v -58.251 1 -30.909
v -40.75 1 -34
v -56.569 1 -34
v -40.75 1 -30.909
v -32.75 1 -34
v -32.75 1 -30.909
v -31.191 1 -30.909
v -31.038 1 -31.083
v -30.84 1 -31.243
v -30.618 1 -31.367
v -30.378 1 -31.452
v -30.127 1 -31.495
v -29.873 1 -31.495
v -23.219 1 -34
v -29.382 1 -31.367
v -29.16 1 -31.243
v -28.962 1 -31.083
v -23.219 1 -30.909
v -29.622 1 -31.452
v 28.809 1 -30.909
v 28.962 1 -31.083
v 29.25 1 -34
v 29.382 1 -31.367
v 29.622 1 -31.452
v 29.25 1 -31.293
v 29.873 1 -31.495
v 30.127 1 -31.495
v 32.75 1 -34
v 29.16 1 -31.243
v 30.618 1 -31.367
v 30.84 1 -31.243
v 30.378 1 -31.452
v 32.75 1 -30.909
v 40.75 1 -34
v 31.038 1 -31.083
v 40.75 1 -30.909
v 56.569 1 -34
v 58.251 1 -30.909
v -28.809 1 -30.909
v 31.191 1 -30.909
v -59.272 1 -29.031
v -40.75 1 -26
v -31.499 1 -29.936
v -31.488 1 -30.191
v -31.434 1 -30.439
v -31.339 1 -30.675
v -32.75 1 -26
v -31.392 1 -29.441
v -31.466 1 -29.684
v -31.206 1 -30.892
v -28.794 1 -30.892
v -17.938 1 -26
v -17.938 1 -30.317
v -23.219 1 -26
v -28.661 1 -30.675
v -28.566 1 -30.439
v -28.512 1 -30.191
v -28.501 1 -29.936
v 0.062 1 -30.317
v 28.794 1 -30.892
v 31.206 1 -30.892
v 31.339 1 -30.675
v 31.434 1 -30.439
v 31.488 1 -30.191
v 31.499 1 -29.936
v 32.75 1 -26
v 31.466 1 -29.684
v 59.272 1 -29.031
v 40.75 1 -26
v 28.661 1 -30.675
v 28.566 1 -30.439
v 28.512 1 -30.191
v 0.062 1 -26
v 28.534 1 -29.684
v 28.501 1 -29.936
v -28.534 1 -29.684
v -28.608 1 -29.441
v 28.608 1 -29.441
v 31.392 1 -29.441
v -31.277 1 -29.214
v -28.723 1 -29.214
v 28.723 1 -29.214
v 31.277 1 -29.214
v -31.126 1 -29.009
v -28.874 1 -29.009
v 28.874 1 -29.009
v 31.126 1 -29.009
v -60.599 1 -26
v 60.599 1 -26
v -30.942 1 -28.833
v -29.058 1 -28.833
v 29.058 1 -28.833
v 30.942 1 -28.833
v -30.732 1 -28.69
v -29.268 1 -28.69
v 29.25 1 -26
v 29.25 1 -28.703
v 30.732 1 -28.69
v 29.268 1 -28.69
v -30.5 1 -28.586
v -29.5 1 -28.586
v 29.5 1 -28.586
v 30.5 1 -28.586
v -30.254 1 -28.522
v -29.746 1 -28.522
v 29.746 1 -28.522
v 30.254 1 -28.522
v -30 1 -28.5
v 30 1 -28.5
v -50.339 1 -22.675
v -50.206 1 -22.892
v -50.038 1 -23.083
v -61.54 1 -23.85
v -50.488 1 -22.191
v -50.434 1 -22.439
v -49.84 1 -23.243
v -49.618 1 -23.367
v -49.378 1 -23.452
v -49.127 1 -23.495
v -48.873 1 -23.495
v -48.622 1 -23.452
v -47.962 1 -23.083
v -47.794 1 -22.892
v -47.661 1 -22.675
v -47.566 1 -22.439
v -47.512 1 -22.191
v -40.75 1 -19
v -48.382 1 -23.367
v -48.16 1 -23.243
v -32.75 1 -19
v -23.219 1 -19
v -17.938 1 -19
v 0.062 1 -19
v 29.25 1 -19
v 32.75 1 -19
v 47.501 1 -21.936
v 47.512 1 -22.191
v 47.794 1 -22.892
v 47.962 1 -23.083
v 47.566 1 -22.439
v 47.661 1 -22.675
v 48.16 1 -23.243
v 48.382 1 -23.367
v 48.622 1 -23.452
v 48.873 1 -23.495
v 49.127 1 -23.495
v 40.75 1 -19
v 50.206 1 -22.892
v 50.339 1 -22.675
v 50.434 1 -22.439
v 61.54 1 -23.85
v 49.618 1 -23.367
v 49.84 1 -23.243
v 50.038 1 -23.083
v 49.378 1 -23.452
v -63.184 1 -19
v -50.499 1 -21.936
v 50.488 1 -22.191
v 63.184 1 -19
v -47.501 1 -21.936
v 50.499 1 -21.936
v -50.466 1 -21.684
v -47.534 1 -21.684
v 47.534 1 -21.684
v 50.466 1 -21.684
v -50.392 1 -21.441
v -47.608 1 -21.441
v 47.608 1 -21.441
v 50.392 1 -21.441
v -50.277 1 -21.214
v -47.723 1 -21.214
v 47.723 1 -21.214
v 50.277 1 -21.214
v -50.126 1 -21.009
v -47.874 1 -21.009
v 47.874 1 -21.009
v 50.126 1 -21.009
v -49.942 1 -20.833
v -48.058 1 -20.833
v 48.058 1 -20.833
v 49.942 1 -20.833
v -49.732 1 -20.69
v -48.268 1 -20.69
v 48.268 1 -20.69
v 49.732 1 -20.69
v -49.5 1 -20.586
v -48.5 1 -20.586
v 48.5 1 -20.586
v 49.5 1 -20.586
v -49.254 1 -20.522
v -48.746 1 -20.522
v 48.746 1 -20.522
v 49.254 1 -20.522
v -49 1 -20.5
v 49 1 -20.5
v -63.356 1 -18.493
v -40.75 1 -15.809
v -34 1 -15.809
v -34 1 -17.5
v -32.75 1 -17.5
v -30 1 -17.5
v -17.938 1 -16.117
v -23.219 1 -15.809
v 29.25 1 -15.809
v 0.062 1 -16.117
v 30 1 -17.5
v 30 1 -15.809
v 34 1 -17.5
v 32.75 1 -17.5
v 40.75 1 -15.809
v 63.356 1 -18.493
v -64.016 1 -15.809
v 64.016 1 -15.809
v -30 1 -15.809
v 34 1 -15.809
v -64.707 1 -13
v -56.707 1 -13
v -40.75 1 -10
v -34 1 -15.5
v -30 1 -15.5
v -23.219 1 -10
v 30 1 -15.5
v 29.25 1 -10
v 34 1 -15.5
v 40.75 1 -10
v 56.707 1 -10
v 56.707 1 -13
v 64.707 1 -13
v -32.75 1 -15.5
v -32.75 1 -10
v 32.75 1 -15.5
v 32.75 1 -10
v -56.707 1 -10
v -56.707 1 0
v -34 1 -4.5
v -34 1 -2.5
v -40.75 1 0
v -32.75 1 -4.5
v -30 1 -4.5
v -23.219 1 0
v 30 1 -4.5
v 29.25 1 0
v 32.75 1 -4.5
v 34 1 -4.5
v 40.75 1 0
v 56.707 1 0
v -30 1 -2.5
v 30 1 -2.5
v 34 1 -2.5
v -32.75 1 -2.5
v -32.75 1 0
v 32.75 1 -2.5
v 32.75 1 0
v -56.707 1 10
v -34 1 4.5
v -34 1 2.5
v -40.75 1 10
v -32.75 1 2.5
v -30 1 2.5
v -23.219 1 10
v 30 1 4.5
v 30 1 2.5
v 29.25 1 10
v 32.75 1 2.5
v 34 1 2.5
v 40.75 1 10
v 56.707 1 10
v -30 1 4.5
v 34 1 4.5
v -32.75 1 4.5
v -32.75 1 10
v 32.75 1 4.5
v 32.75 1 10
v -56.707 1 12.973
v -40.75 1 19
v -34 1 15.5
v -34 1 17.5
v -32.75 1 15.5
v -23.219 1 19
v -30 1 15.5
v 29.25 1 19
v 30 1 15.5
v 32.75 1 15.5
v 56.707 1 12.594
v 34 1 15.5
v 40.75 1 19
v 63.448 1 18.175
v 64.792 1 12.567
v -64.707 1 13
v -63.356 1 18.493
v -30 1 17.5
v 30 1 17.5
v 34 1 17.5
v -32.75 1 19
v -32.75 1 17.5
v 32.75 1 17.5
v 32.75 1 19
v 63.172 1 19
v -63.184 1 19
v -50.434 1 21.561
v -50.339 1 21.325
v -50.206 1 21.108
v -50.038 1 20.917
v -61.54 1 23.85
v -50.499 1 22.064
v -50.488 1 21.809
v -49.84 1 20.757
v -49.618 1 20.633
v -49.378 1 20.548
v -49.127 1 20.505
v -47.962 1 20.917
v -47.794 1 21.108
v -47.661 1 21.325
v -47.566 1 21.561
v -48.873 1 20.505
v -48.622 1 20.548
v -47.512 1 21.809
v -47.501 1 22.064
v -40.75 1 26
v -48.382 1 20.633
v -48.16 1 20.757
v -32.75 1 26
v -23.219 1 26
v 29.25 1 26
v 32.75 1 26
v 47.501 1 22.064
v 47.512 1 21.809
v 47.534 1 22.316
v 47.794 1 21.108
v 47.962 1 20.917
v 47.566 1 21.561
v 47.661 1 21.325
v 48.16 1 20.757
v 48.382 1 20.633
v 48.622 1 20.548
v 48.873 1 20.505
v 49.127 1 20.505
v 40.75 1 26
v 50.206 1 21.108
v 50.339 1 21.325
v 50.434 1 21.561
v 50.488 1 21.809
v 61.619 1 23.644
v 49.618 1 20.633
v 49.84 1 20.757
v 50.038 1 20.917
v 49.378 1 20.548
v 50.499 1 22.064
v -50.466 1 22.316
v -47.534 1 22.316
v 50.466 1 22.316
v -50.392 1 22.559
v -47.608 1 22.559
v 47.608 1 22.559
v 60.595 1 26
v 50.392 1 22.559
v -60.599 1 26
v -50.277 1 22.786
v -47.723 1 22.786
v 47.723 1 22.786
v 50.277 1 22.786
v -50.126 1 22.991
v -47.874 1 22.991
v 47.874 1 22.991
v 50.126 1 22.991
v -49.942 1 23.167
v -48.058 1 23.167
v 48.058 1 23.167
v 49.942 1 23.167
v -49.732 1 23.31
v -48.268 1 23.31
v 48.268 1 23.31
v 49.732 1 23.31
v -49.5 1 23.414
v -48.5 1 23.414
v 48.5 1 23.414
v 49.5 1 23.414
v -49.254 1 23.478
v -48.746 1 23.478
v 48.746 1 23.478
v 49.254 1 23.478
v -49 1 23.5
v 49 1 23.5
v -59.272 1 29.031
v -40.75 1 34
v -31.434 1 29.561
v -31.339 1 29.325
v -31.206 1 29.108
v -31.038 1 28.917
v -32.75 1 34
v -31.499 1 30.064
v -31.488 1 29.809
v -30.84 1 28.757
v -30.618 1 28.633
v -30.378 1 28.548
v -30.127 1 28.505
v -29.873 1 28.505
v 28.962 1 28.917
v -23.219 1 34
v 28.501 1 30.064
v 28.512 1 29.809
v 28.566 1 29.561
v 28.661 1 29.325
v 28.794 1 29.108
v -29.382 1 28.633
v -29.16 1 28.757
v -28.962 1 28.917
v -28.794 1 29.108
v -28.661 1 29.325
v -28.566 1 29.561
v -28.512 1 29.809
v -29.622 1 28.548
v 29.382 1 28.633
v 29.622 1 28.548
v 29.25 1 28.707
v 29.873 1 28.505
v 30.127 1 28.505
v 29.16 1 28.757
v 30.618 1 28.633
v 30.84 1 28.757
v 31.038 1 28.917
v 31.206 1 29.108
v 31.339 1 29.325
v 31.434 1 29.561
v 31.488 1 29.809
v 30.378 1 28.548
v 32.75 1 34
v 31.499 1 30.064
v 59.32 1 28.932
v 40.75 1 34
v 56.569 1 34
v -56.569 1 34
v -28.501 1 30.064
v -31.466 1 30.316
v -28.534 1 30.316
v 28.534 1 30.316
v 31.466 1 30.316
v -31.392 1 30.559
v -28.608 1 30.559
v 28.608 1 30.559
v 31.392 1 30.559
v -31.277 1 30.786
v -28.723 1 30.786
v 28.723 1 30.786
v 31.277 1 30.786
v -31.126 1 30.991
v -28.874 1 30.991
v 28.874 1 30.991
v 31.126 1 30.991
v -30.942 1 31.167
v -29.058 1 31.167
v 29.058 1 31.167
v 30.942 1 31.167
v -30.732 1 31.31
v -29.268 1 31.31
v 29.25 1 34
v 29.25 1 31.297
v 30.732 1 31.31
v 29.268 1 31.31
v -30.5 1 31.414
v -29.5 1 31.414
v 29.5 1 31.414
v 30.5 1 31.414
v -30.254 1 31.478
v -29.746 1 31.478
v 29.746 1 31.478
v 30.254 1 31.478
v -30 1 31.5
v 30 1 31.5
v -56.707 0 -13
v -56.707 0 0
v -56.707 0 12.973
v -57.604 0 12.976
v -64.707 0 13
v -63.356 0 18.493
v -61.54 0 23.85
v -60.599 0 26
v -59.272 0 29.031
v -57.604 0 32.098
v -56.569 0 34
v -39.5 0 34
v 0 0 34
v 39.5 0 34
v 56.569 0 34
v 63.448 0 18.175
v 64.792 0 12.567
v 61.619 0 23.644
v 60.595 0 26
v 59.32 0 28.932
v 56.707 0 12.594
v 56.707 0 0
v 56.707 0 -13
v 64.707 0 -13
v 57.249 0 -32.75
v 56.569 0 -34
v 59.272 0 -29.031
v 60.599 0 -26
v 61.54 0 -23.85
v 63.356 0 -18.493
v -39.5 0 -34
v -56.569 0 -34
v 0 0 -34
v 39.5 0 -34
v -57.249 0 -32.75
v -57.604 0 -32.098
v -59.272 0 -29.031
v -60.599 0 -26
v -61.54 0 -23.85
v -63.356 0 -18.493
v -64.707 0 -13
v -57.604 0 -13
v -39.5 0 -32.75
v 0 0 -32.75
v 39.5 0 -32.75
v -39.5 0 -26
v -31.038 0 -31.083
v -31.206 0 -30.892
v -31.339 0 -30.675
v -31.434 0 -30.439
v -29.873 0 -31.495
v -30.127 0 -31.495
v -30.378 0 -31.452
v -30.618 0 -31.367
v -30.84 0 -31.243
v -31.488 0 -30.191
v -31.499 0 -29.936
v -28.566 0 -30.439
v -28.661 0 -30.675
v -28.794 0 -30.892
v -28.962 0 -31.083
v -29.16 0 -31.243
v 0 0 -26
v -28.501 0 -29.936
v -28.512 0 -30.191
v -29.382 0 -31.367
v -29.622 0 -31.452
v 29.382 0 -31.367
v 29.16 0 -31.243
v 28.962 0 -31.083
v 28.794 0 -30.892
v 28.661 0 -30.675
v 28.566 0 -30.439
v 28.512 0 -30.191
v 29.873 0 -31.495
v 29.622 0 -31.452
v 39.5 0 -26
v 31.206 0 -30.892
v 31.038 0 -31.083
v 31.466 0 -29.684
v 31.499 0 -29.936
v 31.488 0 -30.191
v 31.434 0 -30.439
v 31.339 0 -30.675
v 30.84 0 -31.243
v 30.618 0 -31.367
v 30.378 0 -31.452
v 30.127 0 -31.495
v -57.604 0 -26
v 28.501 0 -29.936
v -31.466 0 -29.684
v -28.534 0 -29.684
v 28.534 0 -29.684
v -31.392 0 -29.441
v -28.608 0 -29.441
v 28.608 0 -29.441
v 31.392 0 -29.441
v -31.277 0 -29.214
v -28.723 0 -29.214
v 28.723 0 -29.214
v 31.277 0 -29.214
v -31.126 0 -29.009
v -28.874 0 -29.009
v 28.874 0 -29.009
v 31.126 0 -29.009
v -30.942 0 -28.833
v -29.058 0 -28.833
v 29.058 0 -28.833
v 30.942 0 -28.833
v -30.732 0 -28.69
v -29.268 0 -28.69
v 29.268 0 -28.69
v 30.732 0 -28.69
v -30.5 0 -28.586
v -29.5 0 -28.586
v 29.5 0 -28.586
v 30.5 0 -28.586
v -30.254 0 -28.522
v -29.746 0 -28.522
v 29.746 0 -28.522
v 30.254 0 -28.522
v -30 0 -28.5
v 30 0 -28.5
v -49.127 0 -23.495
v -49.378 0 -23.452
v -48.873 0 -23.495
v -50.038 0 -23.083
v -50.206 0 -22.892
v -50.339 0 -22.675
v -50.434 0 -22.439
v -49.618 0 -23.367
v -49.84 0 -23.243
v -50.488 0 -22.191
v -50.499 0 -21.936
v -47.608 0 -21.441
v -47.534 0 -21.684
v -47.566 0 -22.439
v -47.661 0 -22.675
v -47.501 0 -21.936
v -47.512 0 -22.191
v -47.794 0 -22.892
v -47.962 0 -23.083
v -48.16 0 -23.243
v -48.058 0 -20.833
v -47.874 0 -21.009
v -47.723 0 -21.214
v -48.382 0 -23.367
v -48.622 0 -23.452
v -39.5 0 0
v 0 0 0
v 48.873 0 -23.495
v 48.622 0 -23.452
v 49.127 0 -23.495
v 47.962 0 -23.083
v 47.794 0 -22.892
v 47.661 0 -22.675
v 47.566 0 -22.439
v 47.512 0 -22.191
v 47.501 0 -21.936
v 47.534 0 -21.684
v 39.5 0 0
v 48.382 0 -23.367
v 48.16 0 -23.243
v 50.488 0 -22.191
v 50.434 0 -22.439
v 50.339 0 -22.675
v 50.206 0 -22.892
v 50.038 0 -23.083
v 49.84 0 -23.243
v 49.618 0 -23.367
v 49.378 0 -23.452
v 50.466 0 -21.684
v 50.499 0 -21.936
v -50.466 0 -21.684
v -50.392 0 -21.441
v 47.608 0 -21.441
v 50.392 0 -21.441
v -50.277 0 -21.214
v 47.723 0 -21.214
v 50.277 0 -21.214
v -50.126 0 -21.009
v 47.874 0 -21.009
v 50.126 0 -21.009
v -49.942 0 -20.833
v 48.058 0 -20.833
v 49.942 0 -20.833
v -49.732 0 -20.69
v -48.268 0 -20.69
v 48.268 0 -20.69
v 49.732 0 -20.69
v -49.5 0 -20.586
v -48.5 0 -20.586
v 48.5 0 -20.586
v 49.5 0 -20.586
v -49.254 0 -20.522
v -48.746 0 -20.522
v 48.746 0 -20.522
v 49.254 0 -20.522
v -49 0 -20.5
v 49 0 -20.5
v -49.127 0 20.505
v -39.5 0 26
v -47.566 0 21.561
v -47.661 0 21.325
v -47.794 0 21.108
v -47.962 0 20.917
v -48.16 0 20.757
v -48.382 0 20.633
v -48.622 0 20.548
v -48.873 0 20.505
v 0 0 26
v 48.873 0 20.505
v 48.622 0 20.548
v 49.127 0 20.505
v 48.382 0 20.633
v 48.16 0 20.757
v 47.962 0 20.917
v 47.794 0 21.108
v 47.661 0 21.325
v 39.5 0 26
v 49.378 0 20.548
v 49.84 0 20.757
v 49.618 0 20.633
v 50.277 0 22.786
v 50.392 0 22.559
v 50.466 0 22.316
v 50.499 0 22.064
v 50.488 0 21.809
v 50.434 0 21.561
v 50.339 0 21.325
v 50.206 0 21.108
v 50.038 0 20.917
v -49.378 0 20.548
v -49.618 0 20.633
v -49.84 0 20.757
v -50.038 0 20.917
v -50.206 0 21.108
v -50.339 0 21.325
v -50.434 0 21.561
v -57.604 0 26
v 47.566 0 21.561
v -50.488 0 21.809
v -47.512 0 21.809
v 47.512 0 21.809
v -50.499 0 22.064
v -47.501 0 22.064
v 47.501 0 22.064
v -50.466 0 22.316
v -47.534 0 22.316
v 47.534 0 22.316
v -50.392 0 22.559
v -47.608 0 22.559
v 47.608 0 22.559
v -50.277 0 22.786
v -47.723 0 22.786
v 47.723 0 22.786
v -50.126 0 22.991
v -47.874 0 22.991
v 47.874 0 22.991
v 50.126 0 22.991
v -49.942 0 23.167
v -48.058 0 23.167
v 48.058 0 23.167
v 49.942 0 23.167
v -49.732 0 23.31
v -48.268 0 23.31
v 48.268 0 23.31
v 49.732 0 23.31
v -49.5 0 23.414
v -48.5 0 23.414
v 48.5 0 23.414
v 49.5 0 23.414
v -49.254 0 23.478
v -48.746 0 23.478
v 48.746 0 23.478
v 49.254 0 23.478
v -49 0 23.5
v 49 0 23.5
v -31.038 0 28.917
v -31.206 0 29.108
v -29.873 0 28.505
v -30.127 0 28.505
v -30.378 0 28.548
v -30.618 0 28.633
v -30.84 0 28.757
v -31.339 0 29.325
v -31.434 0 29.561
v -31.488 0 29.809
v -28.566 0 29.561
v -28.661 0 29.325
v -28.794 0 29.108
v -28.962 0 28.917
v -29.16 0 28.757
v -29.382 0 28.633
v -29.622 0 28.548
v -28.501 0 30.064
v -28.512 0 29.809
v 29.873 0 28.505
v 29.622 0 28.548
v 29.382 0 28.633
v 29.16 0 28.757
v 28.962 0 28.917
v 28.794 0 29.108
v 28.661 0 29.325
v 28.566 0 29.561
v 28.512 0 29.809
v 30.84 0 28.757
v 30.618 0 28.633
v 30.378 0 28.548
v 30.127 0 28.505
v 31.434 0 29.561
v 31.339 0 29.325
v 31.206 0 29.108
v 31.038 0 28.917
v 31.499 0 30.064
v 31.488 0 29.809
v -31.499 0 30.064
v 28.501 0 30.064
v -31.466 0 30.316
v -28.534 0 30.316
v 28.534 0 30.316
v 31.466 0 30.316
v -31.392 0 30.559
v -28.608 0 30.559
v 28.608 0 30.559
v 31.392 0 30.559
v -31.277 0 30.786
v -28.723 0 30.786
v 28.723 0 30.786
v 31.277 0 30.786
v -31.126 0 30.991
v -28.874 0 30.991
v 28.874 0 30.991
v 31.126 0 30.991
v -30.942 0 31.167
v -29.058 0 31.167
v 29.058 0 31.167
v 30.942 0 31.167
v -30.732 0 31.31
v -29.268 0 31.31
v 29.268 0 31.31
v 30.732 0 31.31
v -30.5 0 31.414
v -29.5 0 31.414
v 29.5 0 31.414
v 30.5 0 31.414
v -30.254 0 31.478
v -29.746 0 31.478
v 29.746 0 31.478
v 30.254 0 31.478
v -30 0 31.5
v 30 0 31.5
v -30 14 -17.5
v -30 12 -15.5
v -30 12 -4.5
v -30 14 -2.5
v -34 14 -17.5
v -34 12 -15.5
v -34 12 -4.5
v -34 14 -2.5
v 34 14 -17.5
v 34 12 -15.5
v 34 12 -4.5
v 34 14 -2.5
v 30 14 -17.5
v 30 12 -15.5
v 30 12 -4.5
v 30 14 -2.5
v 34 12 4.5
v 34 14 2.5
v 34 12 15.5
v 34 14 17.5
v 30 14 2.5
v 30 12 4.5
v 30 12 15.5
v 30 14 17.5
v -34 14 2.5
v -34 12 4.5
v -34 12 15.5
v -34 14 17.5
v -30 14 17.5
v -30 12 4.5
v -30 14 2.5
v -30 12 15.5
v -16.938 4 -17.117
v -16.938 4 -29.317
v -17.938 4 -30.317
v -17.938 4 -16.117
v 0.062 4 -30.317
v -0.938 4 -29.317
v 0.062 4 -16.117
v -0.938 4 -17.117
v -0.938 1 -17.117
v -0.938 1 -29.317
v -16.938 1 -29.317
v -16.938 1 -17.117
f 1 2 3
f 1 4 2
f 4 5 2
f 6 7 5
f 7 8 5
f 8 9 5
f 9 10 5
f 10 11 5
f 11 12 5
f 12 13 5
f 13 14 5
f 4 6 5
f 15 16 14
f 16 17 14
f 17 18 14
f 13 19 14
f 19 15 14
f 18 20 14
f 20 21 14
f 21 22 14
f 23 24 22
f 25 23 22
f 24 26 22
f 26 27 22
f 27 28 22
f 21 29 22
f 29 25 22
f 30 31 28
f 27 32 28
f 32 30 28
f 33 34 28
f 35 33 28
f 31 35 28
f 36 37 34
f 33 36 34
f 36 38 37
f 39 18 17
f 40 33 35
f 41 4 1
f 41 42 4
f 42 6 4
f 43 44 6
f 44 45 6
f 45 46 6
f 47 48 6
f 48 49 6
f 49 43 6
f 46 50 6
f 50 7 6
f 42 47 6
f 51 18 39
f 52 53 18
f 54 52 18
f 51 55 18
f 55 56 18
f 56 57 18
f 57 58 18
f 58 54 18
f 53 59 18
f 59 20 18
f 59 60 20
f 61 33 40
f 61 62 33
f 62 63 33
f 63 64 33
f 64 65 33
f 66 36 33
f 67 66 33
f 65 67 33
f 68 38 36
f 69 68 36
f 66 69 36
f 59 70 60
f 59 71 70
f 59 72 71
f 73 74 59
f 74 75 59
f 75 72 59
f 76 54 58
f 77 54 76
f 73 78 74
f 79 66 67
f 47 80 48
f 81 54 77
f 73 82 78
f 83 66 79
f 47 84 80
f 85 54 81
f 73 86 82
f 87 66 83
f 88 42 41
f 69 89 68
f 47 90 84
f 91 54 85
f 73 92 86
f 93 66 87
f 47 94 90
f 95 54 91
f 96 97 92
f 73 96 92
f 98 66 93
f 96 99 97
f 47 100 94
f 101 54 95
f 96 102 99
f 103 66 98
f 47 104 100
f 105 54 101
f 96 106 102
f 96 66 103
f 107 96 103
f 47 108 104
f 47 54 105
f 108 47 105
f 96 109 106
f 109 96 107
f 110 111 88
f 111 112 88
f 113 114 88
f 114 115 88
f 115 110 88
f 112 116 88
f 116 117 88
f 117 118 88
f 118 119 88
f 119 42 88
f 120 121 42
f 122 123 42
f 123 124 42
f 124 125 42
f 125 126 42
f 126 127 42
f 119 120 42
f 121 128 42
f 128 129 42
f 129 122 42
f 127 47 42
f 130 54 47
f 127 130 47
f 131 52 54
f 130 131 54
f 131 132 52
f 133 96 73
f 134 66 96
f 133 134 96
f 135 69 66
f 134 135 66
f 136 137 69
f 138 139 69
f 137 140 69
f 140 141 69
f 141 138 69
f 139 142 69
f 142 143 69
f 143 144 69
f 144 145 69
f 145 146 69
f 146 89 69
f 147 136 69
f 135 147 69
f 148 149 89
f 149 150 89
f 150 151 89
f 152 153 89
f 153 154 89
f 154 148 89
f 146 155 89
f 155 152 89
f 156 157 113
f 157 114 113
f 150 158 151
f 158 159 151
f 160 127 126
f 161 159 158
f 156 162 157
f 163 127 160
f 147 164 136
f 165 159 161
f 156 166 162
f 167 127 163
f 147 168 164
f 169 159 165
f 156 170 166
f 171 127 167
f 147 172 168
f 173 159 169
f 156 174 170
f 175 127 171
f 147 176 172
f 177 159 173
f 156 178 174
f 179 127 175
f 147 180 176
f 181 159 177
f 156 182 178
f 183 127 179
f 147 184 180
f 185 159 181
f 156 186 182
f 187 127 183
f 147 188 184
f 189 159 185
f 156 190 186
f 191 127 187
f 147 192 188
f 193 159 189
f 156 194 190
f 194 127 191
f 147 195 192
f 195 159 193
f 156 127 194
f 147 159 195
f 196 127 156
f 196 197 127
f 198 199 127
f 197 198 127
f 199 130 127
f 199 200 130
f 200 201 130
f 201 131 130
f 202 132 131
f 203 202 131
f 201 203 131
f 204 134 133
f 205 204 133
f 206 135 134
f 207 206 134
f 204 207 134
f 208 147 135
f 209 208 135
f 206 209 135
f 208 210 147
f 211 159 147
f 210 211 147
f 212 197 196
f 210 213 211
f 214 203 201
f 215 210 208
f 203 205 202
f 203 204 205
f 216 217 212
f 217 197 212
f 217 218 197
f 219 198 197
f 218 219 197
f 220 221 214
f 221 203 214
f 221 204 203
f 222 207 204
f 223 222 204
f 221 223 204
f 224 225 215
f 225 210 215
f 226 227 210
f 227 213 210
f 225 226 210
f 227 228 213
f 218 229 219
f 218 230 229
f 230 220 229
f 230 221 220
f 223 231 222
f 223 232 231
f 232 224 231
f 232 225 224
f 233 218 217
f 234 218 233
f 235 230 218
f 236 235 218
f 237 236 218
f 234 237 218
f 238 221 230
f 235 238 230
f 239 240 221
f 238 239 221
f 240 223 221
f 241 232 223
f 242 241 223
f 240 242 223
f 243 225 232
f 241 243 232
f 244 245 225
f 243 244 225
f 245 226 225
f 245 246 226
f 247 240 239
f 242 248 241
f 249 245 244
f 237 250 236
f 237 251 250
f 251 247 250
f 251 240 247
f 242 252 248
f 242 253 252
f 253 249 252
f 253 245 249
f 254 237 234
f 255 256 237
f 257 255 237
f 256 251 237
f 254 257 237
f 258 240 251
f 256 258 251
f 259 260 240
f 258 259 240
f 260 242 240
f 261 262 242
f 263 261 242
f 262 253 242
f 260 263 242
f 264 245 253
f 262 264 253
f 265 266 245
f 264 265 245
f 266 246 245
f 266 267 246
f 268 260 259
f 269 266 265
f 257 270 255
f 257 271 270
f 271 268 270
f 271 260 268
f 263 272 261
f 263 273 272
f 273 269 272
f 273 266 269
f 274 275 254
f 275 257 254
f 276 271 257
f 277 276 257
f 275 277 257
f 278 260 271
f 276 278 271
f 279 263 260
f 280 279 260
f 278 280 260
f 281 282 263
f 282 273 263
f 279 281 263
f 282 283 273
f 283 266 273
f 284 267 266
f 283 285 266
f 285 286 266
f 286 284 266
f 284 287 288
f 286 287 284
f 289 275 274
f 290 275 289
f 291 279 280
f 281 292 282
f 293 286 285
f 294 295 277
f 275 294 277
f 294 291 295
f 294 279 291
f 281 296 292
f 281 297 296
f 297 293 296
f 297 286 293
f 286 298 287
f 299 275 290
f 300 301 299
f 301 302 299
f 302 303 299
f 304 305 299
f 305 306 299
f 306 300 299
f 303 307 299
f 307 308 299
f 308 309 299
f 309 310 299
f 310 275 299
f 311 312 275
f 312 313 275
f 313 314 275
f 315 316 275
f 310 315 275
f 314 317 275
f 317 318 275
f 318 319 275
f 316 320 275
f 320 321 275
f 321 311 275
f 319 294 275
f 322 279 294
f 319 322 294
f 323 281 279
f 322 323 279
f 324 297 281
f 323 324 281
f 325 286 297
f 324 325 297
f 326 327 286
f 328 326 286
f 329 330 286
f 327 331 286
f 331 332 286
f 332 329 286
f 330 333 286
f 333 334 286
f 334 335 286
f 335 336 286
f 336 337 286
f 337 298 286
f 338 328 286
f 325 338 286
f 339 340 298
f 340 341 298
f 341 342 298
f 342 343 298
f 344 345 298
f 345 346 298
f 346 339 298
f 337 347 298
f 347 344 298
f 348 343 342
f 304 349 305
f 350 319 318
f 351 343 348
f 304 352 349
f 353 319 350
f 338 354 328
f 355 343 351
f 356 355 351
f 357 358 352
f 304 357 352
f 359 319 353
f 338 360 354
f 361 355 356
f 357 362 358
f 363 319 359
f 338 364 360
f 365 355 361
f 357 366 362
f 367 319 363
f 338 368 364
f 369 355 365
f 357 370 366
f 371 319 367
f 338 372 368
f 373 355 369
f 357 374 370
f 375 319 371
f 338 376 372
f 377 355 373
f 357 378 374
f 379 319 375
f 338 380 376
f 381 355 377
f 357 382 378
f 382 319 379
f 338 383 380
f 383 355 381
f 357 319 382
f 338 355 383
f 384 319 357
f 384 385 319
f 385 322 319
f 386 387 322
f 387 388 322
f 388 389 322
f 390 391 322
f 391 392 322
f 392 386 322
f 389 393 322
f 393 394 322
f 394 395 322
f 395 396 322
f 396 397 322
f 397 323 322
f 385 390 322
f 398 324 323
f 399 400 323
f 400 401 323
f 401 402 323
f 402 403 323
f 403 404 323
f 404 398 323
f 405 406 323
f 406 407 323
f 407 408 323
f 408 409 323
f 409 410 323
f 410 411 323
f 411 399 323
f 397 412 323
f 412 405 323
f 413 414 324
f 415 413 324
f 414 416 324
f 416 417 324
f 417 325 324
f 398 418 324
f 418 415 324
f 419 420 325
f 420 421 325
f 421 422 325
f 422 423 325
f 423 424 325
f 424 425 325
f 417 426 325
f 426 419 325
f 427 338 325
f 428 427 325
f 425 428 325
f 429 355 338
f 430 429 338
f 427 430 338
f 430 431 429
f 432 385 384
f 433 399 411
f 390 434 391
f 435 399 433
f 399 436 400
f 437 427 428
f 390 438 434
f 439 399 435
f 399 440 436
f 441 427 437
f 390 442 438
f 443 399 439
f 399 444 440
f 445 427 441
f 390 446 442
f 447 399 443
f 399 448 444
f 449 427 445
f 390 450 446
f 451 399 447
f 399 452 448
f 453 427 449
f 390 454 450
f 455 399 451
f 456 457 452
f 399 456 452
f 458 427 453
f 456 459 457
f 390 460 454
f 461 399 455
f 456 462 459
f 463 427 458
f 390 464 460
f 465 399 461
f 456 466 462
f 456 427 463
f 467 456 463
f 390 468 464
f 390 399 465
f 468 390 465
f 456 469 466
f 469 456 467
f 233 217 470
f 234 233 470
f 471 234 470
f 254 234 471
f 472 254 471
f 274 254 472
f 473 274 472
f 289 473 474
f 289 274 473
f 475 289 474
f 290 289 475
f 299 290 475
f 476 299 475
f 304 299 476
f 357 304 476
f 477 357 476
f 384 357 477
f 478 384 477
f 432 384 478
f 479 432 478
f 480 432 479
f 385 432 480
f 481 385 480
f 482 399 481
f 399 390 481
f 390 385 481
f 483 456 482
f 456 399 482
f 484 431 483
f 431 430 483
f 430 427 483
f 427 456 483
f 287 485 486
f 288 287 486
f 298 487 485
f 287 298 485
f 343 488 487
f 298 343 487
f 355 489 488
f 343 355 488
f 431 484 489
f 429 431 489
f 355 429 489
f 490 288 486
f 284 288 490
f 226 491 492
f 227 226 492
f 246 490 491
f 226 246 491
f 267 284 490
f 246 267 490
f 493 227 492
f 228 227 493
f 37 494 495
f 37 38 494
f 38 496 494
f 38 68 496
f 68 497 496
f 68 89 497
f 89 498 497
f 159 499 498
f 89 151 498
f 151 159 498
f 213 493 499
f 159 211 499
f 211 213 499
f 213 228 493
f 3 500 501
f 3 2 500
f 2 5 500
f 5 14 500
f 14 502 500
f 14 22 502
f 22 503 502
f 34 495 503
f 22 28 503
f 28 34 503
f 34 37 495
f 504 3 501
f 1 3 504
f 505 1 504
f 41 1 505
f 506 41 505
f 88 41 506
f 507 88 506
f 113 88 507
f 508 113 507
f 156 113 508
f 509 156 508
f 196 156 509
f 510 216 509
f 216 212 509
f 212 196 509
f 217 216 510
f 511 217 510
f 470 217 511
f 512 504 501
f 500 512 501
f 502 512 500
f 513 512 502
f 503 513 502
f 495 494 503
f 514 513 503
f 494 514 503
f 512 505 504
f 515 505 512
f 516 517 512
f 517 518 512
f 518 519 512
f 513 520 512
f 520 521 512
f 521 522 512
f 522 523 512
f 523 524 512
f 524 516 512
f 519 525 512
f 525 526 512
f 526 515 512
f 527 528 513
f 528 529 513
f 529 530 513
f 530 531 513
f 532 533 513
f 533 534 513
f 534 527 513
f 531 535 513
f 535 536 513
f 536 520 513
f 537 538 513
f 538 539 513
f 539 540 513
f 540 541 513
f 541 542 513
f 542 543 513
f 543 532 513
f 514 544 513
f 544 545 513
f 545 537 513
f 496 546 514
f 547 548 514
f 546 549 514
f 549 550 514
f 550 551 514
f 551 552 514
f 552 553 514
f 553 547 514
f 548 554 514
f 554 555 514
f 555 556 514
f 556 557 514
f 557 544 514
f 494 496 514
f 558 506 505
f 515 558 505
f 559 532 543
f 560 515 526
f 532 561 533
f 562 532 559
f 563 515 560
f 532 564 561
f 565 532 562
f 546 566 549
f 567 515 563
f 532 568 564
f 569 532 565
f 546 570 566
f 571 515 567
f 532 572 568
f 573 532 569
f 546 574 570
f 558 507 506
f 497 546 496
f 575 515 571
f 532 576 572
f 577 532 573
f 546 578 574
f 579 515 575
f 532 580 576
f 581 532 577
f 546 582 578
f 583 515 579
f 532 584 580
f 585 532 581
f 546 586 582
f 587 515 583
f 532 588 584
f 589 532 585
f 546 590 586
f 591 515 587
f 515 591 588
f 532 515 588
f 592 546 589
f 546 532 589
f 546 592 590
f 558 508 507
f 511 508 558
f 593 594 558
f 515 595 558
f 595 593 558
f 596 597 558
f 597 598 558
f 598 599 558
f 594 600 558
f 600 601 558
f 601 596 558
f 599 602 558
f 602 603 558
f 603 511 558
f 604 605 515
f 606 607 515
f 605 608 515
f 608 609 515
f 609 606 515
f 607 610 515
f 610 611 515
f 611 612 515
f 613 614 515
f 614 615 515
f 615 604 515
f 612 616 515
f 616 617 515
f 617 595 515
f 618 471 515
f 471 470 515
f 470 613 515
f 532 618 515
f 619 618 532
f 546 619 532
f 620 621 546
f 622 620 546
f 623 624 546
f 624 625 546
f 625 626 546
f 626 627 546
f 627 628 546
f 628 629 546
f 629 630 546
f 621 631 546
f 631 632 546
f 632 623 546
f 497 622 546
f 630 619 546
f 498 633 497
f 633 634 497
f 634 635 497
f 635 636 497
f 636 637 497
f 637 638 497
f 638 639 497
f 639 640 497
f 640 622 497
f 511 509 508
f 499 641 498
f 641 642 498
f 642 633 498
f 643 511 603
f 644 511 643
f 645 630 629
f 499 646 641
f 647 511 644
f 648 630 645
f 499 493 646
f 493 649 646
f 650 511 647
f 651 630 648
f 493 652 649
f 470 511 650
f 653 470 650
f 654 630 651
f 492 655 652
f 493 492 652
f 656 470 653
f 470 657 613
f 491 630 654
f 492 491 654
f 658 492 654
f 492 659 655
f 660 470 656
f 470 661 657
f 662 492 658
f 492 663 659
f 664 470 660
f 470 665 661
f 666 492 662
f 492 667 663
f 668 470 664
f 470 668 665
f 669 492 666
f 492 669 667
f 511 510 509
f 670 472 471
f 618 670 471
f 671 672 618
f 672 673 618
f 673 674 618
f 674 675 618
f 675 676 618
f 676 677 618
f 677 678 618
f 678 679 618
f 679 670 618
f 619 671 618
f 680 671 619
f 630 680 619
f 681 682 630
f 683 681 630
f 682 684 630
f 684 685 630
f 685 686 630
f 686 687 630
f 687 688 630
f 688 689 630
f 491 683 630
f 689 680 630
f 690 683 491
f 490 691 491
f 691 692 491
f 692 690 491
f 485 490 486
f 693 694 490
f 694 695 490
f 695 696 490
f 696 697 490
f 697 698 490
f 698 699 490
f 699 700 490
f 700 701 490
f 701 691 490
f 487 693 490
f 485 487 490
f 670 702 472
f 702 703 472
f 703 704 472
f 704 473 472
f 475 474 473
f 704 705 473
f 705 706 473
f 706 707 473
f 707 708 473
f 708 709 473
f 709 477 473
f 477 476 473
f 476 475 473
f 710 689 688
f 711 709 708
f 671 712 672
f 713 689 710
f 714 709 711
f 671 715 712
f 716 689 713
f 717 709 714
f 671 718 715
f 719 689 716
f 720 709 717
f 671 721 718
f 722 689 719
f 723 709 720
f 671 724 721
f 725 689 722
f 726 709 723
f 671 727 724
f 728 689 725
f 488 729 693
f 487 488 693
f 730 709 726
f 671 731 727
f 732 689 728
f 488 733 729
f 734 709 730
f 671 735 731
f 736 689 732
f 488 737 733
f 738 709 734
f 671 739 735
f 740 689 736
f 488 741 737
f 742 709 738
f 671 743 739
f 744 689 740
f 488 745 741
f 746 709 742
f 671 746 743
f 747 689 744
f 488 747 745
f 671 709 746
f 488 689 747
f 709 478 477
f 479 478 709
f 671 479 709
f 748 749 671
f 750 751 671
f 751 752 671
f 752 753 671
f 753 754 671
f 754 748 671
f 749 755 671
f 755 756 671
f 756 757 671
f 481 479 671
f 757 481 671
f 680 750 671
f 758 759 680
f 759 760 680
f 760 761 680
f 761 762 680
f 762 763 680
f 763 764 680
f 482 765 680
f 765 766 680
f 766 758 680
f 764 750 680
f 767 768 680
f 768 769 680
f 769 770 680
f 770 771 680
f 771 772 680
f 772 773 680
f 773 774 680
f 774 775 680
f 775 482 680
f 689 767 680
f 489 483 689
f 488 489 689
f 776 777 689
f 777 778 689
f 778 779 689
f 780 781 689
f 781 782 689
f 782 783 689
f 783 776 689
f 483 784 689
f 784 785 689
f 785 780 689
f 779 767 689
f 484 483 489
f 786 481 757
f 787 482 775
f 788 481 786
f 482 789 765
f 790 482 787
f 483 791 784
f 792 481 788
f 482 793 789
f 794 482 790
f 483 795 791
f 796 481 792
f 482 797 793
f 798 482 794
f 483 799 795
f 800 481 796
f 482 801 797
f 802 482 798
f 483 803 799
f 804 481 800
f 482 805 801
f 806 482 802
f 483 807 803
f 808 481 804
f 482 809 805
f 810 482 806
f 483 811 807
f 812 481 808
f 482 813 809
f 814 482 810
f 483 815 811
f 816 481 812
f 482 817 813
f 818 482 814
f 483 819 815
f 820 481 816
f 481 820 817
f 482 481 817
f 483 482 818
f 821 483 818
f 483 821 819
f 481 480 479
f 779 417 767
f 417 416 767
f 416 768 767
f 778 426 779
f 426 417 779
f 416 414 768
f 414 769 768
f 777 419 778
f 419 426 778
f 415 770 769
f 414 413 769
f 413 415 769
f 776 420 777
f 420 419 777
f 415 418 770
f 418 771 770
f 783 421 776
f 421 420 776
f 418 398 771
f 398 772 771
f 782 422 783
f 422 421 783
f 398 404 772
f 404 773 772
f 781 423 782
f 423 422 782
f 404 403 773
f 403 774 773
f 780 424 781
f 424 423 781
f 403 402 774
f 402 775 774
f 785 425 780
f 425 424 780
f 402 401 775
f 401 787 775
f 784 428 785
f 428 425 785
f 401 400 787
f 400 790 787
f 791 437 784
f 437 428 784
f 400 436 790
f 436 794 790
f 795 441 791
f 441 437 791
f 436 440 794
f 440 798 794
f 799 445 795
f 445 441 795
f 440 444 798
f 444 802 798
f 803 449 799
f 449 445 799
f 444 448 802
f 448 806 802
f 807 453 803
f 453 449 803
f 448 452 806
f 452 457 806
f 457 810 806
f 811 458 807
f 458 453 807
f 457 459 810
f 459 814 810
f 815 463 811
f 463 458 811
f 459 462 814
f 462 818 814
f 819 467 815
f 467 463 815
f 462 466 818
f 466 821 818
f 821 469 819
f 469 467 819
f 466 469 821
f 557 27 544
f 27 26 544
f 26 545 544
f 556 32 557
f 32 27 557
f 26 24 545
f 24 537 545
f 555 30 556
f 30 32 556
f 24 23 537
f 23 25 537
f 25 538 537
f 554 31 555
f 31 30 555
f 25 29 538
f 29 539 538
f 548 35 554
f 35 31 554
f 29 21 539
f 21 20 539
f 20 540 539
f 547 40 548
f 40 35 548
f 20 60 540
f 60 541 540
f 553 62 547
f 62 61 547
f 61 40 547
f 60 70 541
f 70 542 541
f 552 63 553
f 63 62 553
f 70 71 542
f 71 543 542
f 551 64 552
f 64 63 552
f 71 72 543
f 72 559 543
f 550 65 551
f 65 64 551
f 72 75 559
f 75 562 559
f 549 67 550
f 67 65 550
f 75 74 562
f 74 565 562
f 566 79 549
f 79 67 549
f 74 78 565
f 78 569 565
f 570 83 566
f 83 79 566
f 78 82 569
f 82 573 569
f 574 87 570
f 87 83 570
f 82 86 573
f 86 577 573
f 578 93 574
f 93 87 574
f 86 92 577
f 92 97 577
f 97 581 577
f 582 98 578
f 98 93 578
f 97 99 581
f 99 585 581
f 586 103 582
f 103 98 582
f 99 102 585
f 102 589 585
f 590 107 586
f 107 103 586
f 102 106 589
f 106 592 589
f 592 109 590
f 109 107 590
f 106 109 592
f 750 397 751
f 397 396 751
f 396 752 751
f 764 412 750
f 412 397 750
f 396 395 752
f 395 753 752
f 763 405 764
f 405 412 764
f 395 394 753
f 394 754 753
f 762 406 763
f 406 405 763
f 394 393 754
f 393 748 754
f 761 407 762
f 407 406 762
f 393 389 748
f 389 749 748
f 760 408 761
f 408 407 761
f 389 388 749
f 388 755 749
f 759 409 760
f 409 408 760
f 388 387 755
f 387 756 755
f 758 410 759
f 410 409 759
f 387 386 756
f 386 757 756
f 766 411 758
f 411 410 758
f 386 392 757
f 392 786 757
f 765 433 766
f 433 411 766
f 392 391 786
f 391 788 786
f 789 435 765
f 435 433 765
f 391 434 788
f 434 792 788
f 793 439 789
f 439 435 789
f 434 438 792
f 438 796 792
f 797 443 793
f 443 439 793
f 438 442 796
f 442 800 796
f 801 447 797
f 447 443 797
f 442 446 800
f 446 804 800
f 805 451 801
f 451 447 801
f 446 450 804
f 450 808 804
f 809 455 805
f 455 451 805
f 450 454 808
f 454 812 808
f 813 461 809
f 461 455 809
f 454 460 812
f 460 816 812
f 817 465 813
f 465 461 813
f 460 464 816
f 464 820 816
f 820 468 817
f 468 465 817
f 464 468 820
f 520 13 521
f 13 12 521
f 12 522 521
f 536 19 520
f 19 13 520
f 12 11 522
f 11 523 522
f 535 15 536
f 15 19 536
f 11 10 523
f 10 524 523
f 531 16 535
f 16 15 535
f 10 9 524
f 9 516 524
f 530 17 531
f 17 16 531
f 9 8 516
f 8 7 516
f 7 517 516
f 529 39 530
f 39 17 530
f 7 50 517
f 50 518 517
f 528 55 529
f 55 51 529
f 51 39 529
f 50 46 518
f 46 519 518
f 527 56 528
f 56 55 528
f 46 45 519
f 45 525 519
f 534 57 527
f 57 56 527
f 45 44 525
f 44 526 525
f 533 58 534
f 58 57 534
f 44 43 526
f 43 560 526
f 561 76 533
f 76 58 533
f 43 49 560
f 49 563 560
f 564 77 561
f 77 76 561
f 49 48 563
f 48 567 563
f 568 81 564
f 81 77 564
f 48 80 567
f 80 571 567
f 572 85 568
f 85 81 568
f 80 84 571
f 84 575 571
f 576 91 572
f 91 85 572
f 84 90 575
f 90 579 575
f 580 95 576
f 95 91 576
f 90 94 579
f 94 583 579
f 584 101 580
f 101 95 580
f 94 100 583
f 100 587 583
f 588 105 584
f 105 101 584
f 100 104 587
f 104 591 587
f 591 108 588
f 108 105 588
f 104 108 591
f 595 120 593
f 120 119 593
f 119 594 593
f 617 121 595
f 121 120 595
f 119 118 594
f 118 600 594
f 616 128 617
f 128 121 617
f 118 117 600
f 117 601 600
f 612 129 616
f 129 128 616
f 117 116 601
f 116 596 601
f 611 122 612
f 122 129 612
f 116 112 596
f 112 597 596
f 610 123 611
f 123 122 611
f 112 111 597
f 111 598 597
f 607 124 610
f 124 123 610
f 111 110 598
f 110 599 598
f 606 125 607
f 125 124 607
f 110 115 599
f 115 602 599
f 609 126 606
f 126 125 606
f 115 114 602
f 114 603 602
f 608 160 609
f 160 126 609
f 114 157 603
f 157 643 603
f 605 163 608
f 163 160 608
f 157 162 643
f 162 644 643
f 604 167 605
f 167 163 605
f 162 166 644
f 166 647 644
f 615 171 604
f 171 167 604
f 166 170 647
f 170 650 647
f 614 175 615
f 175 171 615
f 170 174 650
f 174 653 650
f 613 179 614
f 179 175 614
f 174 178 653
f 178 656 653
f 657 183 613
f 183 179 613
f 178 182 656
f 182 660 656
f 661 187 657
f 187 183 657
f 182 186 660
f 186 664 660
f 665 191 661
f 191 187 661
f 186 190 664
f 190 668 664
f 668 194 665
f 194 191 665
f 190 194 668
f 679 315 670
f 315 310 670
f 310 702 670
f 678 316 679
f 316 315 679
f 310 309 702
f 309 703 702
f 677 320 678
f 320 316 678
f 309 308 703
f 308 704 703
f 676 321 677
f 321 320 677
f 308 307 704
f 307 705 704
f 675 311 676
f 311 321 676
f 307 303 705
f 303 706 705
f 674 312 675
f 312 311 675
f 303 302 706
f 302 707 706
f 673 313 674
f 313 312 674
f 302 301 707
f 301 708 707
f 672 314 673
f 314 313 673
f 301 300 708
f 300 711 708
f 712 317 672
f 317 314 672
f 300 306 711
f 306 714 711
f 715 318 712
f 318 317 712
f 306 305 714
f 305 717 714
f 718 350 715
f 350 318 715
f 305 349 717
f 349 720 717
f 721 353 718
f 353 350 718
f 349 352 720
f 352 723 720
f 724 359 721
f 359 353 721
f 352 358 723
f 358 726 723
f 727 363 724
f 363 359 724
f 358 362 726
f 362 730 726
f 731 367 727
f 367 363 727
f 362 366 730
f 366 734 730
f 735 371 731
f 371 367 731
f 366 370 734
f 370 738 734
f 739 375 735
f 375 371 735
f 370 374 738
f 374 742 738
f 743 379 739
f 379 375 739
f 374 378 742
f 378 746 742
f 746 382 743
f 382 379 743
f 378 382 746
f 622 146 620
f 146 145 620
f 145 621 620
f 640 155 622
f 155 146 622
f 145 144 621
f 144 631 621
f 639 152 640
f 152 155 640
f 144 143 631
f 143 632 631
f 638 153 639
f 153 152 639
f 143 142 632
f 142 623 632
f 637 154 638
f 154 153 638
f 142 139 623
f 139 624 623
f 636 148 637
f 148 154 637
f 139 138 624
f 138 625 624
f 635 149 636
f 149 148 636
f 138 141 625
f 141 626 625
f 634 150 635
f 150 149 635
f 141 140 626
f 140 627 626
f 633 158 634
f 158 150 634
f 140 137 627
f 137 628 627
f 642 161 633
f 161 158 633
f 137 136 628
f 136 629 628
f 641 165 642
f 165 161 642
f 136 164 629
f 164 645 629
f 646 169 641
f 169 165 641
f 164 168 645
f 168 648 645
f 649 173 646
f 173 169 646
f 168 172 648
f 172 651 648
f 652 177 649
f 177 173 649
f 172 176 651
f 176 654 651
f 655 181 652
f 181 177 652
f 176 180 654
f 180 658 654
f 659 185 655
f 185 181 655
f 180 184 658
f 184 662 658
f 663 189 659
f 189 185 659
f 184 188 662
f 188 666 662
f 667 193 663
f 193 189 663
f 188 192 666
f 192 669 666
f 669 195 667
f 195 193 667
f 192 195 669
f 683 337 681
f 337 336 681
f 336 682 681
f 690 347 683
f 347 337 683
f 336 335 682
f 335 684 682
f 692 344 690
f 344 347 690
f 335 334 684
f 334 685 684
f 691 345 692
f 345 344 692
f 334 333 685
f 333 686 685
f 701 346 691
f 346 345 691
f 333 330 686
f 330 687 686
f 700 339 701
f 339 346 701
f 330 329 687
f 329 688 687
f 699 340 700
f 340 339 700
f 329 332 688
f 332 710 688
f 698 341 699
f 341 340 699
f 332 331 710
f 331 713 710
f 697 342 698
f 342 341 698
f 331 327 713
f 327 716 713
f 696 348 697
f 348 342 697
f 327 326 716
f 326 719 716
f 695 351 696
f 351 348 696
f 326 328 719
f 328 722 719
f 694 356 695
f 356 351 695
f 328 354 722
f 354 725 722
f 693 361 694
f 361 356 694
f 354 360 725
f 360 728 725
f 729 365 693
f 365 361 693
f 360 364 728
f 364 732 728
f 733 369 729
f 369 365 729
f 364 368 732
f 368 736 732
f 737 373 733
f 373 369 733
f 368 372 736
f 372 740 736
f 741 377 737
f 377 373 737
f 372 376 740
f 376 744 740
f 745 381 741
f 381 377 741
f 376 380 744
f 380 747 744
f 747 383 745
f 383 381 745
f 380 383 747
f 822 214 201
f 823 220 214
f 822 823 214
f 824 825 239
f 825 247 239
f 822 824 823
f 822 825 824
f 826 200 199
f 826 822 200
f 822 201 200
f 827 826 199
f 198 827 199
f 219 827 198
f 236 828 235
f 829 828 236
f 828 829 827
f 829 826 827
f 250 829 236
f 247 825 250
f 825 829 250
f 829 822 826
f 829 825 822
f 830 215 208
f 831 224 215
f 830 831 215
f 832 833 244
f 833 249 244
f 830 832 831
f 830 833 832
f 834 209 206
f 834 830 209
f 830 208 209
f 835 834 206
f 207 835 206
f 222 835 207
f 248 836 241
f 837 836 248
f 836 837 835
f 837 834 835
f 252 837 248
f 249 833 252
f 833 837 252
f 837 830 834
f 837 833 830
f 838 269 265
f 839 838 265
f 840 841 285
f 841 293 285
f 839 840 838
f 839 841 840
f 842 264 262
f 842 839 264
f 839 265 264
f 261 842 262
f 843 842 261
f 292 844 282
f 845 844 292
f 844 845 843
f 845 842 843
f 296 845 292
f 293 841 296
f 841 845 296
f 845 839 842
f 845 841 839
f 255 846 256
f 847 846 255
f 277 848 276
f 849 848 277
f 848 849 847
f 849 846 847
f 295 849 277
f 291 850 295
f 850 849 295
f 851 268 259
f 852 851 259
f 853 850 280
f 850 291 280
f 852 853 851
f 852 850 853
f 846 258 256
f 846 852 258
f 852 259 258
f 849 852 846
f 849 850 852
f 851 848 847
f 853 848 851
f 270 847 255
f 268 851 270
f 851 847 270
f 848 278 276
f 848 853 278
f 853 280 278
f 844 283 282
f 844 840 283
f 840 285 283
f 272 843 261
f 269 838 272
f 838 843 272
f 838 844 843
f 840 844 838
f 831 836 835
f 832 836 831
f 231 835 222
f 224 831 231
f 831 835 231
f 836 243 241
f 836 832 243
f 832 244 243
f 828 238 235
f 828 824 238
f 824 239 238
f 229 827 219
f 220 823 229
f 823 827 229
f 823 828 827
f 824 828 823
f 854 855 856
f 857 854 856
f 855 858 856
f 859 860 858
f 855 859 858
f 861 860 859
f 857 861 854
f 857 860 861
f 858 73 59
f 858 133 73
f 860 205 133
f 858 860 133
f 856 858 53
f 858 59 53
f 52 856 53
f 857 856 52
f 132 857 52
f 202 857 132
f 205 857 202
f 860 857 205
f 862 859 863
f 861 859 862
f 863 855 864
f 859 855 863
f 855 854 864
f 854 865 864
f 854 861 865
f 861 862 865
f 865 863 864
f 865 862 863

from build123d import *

# Parameters (mm, degrees)
EXTRUDE_2_DEPTH             = 1
F_3_0MM_1_D                 = 3
F_3_0MM_1_DEPTH             = 4
F_3_0MM_1_TIP               = 0.901290929
F_3_0MM_1_ON_FACE_2_D       = 3
F_3_0MM_1_ON_FACE_2_DEPTH   = 4
F_3_0MM_1_ON_FACE_2_TIP     = 0.901290929
PATTERN_LINEAR_1_COUNT      = 2
PATTERN_LINEAR_1_PITCH      = 98
PATTERN_LINEAR_1_COUNT_DIR2 = 2
PATTERN_LINEAR_1_PITCH_DIR2 = 44
SKETCH_16_W                 = 4
SKETCH_16_H                 = 15
EXTRUDE_3_DEPTH             = 13
CUT_EXTRUDE_1_REACH         = 107.413
SKETCH_17_W                 = 11
SKETCH_17_H                 = 11
SKETCH_18_W                 = 18
SKETCH_18_H                 = 14.2
SKETCH_18_W_2               = 16
SKETCH_18_H_2               = 12.2
EXTRUDE_4_DEPTH             = 3


with BuildPart() as part:
    # 草圖10 → 填料-伸長2 (new body)
    with BuildSketch(Plane(origin=(0, 0, 0), x_dir=(1, 0, 0), z_dir=(0, 1, 0))):
        with BuildLine():
            Line((56.568542495, 34), (-56.568542495, 34))
            ThreePointArc((-56.568542495, 34), (-61.540159626, 23.849711805), (-64.707032075, 13))
            Line((-64.707032075, 13), (-56.707032075, 13))
            Line((-56.707032075, 13), (-56.707032075, -12.973279994))
            Line((-56.707032075, -12.973279994), (-64.707032075, -13))
            ThreePointArc((-64.707032075, -13), (-61.540159626, -23.849711805), (-56.568542495, -34))
            Line((-56.568542495, -34), (56.568542495, -34))
            ThreePointArc((56.568542495, -34), (61.619473981, -23.644035746), (64.792427449, -12.567471713))
            Line((64.792427449, -12.567471713), (56.707032075, -12.594476939))
            Line((56.707032075, -12.594476939), (56.707032075, 13))
            Line((56.707032075, 13), (64.707032075, 13))
            ThreePointArc((64.707032075, 13), (61.540159626, 23.849711805), (56.568542495, 34))
        make_face()
    extrude(amount=EXTRUDE_2_DEPTH)

    # Ø3.0mm 定位孔1
    with Locations(Plane(origin=(30, 1, 30), x_dir=(0, 0, 1), z_dir=(0, 1, 0))):
        with Locations((0, 0), (-60, -60), (0, -60), (-60, 0)):
            Hole(F_3_0MM_1_D / 2, depth=F_3_0MM_1_DEPTH)
            with Locations((0, 0, -(F_3_0MM_1_DEPTH + F_3_0MM_1_TIP / 2))):  # 118° drill point
                Cone(0, F_3_0MM_1_D / 2, F_3_0MM_1_TIP, mode=Mode.SUBTRACT)

    # Ø3.0mm 定位孔1 on face 2
    with Locations(Plane(origin=(-30, 0, -30), x_dir=(0, 0, -1), z_dir=(0, -1, 0))):
        with Locations((0, 0)):
            Hole(F_3_0MM_1_ON_FACE_2_D / 2, depth=F_3_0MM_1_ON_FACE_2_DEPTH)
            with Locations((0, 0, -(F_3_0MM_1_ON_FACE_2_DEPTH + F_3_0MM_1_ON_FACE_2_TIP / 2))):  # 118° drill point
                Cone(0, F_3_0MM_1_ON_FACE_2_D / 2, F_3_0MM_1_ON_FACE_2_TIP, mode=Mode.SUBTRACT)

    # 草圖14 → Ø3.0mm 定位孔2 (revolve, cut)
    with BuildSketch(Plane(origin=(-49, 1, -22), x_dir=(0, 0, 1), z_dir=(1, 0, 0))):
        Polygon((0, 0), (0, 4.901290929), (1.5, 4), (1.5, 0), align=None)
    f_3_0mm_2 = revolve(axis=Axis((-49, 7.35, -22), (0, -1, 0)), mode=Mode.SUBTRACT)

    # 直線複製排列1: 3.0mm _2 2 × 2
    with Locations(*[(i * PATTERN_LINEAR_1_PITCH, 0, j * PATTERN_LINEAR_1_PITCH_DIR2) for i in range(PATTERN_LINEAR_1_COUNT) for j in range(PATTERN_LINEAR_1_COUNT_DIR2) if (i, j) != (0, 0)]):
        add(f_3_0mm_2, mode=Mode.SUBTRACT)

    # 草圖16 → 填料-伸長3 (add)
    with BuildSketch(Plane(origin=(0, 1, 0), x_dir=(1, 0, 0), z_dir=(0, 1, 0))):
        with Locations((-32, 10)):
            Rectangle(SKETCH_16_W, SKETCH_16_H)
        with Locations((32, 10)):
            Rectangle(SKETCH_16_W, SKETCH_16_H)
        with Locations((32, -10)):
            Rectangle(SKETCH_16_W, SKETCH_16_H)
        with Locations((-32, -10)):
            Rectangle(SKETCH_16_W, SKETCH_16_H)
    extrude(amount=EXTRUDE_3_DEPTH)

    # 除料-伸長1: up to this face of the body (flat: up to its plane)
    cut_extrude_1_end = Plane(part.part.faces().sort_by_distance((34, 7.5, -10))[0])
    # 草圖17 → 除料-伸長1 (cut, up to the picked face)
    with BuildSketch(Plane.ZY.offset(34), mode=Mode.PRIVATE) as cut_extrude_1_sk1:
        with Locations((-10, 6.5)):
            Rectangle(SKETCH_17_W, SKETCH_17_H)
    cut_extrude_1_tool1 = split(extrude(cut_extrude_1_sk1.sketch, amount=-CUT_EXTRUDE_1_REACH, mode=Mode.PRIVATE), bisect_by=cut_extrude_1_end, keep=Keep.BOTH, mode=Mode.PRIVATE)
    # 草圖17 → 除料-伸長1 (cut, up to the picked face)
    with BuildSketch(Plane.ZY.offset(34), mode=Mode.PRIVATE) as cut_extrude_1_sk2:
        with Locations((10, 6.5)):
            Rectangle(SKETCH_17_W, SKETCH_17_H)
    cut_extrude_1_tool2 = split(extrude(cut_extrude_1_sk2.sketch, amount=-CUT_EXTRUDE_1_REACH, mode=Mode.PRIVATE), bisect_by=cut_extrude_1_end, keep=Keep.BOTH, mode=Mode.PRIVATE)
    add(cut_extrude_1_tool1.solids().sort_by(Axis((-34, 6.5, -10), (1, 0, 0)))[0], mode=Mode.SUBTRACT)
    add(cut_extrude_1_tool2.solids().sort_by(Axis((-34, 6.5, 10), (1, 0, 0)))[0], mode=Mode.SUBTRACT)

    # 草圖18 → 填料-伸長4 (add)
    with BuildSketch(Plane(origin=(0, 1, 0), x_dir=(1, 0, 0), z_dir=(0, 1, 0))):
        with Locations((-8.938019144, 23.21731374)):
            Rectangle(SKETCH_18_W, SKETCH_18_H)
        with Locations((-8.938019144, 23.21731374)):
            Rectangle(SKETCH_18_W_2, SKETCH_18_H_2, mode=Mode.SUBTRACT)
    extrude(amount=EXTRUDE_4_DEPTH)


solid = part.part
